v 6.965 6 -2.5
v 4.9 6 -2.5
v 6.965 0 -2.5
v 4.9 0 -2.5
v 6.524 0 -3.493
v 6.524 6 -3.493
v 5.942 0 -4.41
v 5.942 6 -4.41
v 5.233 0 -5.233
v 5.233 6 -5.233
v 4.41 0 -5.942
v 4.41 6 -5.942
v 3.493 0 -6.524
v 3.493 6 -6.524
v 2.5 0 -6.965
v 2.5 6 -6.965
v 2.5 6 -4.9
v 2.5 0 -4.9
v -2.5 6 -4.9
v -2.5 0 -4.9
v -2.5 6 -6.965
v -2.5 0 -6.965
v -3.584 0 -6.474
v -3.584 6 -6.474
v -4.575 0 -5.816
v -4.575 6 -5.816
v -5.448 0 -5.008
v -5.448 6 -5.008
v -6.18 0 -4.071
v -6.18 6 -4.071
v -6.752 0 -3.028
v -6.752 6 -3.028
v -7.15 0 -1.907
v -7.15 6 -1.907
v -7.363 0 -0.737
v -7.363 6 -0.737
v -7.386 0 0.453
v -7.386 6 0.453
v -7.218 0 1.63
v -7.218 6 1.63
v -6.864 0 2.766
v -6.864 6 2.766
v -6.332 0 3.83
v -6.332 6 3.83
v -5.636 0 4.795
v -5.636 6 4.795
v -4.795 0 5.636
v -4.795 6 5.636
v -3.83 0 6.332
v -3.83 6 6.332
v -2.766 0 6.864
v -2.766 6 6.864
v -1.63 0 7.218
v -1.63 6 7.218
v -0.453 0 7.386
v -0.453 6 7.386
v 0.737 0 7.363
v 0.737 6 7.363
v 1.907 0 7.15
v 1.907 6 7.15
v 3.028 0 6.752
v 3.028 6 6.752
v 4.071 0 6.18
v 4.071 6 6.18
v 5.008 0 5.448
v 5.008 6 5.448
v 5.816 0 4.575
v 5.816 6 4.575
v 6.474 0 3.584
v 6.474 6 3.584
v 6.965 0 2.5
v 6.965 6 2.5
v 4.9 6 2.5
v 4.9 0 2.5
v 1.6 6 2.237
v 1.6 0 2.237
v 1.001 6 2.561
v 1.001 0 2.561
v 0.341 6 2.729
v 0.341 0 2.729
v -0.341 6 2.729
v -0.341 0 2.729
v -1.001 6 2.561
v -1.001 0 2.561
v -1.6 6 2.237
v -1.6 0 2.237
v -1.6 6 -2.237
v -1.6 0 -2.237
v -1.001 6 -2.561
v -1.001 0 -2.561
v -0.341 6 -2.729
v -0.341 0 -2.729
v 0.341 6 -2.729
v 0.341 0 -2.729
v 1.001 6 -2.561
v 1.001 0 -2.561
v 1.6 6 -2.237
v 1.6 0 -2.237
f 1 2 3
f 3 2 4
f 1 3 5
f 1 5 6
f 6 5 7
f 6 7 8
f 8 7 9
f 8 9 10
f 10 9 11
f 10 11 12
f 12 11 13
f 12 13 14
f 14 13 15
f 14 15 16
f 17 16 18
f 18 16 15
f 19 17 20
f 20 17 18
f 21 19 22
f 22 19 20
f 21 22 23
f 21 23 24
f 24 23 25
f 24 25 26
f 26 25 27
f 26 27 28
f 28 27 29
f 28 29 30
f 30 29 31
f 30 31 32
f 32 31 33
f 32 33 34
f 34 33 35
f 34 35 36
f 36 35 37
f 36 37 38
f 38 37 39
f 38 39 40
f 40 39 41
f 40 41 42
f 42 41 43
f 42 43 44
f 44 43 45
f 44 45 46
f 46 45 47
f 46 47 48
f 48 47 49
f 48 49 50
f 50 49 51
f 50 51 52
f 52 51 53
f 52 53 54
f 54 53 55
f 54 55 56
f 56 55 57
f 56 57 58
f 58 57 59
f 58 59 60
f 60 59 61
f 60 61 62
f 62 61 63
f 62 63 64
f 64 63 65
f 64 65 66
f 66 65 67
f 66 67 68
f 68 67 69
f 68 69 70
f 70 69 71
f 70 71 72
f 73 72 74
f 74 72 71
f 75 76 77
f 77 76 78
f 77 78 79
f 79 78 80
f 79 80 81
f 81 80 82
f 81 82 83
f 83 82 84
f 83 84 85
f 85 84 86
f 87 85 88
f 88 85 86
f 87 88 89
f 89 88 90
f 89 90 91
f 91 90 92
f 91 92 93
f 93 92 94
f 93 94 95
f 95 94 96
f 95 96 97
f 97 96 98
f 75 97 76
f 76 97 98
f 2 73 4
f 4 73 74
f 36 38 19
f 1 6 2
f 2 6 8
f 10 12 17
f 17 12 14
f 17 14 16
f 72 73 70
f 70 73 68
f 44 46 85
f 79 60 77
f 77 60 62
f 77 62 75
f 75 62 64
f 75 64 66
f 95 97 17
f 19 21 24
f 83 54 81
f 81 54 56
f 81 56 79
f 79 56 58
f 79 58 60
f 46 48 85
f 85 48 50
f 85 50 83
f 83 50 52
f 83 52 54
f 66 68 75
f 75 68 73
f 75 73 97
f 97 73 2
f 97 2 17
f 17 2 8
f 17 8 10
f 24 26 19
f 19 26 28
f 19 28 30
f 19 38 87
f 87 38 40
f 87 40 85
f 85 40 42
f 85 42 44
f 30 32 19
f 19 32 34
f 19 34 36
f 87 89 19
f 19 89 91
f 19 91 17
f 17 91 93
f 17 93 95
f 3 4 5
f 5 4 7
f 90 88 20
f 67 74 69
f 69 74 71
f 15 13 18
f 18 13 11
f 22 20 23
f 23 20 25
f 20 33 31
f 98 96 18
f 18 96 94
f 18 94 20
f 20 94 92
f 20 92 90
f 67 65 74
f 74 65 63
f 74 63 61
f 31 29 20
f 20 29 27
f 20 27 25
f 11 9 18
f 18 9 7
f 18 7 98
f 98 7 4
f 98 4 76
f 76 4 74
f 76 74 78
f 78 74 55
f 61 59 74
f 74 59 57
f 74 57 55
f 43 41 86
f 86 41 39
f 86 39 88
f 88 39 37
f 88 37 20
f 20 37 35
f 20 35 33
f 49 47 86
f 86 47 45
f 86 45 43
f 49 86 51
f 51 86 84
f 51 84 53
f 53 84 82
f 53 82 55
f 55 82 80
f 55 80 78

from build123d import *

# Parameters (mm, degrees)
BOSS_EXTRUDE1_DEPTH = 6


with BuildPart() as part:
    # Sketch1 → Boss-Extrude1 (new body)
    with BuildSketch(Plane(origin=(0, 0, 0), x_dir=(1, 0, 0), z_dir=(0, 1, 0))):
        with BuildLine():
            Line((4.9, -2.5), (4.9, 2.5))
            Line((4.9, 2.5), (6.96491206, 2.5))
            ThreePointArc((6.96491206, 2.5), (5.232590181, 5.232590181), (2.5, 6.96491206))
            Line((2.5, 6.96491206), (2.5, 4.9))
            Line((2.5, 4.9), (-2.5, 4.9))
            Line((-2.5, 4.9), (-2.5, 6.96491206))
            ThreePointArc((-2.5, 6.96491206), (-5.232590181, -5.232590181), (6.96491206, -2.5))
            Line((6.96491206, -2.5), (4.9, -2.5))
        make_face()
        with BuildLine():
            Line((-1.6, -2.236626925), (-1.6, 2.236626925))
            ThreePointArc((-1.6, 2.236626925), (0, 2.75), (1.6, 2.236626925))
            Line((1.6, 2.236626925), (1.6, -2.236626925))
            ThreePointArc((1.6, -2.236626925), (0, -2.75), (-1.6, -2.236626925))
        make_face(mode=Mode.SUBTRACT)
    extrude(amount=BOSS_EXTRUDE1_DEPTH)


solid = part.part
